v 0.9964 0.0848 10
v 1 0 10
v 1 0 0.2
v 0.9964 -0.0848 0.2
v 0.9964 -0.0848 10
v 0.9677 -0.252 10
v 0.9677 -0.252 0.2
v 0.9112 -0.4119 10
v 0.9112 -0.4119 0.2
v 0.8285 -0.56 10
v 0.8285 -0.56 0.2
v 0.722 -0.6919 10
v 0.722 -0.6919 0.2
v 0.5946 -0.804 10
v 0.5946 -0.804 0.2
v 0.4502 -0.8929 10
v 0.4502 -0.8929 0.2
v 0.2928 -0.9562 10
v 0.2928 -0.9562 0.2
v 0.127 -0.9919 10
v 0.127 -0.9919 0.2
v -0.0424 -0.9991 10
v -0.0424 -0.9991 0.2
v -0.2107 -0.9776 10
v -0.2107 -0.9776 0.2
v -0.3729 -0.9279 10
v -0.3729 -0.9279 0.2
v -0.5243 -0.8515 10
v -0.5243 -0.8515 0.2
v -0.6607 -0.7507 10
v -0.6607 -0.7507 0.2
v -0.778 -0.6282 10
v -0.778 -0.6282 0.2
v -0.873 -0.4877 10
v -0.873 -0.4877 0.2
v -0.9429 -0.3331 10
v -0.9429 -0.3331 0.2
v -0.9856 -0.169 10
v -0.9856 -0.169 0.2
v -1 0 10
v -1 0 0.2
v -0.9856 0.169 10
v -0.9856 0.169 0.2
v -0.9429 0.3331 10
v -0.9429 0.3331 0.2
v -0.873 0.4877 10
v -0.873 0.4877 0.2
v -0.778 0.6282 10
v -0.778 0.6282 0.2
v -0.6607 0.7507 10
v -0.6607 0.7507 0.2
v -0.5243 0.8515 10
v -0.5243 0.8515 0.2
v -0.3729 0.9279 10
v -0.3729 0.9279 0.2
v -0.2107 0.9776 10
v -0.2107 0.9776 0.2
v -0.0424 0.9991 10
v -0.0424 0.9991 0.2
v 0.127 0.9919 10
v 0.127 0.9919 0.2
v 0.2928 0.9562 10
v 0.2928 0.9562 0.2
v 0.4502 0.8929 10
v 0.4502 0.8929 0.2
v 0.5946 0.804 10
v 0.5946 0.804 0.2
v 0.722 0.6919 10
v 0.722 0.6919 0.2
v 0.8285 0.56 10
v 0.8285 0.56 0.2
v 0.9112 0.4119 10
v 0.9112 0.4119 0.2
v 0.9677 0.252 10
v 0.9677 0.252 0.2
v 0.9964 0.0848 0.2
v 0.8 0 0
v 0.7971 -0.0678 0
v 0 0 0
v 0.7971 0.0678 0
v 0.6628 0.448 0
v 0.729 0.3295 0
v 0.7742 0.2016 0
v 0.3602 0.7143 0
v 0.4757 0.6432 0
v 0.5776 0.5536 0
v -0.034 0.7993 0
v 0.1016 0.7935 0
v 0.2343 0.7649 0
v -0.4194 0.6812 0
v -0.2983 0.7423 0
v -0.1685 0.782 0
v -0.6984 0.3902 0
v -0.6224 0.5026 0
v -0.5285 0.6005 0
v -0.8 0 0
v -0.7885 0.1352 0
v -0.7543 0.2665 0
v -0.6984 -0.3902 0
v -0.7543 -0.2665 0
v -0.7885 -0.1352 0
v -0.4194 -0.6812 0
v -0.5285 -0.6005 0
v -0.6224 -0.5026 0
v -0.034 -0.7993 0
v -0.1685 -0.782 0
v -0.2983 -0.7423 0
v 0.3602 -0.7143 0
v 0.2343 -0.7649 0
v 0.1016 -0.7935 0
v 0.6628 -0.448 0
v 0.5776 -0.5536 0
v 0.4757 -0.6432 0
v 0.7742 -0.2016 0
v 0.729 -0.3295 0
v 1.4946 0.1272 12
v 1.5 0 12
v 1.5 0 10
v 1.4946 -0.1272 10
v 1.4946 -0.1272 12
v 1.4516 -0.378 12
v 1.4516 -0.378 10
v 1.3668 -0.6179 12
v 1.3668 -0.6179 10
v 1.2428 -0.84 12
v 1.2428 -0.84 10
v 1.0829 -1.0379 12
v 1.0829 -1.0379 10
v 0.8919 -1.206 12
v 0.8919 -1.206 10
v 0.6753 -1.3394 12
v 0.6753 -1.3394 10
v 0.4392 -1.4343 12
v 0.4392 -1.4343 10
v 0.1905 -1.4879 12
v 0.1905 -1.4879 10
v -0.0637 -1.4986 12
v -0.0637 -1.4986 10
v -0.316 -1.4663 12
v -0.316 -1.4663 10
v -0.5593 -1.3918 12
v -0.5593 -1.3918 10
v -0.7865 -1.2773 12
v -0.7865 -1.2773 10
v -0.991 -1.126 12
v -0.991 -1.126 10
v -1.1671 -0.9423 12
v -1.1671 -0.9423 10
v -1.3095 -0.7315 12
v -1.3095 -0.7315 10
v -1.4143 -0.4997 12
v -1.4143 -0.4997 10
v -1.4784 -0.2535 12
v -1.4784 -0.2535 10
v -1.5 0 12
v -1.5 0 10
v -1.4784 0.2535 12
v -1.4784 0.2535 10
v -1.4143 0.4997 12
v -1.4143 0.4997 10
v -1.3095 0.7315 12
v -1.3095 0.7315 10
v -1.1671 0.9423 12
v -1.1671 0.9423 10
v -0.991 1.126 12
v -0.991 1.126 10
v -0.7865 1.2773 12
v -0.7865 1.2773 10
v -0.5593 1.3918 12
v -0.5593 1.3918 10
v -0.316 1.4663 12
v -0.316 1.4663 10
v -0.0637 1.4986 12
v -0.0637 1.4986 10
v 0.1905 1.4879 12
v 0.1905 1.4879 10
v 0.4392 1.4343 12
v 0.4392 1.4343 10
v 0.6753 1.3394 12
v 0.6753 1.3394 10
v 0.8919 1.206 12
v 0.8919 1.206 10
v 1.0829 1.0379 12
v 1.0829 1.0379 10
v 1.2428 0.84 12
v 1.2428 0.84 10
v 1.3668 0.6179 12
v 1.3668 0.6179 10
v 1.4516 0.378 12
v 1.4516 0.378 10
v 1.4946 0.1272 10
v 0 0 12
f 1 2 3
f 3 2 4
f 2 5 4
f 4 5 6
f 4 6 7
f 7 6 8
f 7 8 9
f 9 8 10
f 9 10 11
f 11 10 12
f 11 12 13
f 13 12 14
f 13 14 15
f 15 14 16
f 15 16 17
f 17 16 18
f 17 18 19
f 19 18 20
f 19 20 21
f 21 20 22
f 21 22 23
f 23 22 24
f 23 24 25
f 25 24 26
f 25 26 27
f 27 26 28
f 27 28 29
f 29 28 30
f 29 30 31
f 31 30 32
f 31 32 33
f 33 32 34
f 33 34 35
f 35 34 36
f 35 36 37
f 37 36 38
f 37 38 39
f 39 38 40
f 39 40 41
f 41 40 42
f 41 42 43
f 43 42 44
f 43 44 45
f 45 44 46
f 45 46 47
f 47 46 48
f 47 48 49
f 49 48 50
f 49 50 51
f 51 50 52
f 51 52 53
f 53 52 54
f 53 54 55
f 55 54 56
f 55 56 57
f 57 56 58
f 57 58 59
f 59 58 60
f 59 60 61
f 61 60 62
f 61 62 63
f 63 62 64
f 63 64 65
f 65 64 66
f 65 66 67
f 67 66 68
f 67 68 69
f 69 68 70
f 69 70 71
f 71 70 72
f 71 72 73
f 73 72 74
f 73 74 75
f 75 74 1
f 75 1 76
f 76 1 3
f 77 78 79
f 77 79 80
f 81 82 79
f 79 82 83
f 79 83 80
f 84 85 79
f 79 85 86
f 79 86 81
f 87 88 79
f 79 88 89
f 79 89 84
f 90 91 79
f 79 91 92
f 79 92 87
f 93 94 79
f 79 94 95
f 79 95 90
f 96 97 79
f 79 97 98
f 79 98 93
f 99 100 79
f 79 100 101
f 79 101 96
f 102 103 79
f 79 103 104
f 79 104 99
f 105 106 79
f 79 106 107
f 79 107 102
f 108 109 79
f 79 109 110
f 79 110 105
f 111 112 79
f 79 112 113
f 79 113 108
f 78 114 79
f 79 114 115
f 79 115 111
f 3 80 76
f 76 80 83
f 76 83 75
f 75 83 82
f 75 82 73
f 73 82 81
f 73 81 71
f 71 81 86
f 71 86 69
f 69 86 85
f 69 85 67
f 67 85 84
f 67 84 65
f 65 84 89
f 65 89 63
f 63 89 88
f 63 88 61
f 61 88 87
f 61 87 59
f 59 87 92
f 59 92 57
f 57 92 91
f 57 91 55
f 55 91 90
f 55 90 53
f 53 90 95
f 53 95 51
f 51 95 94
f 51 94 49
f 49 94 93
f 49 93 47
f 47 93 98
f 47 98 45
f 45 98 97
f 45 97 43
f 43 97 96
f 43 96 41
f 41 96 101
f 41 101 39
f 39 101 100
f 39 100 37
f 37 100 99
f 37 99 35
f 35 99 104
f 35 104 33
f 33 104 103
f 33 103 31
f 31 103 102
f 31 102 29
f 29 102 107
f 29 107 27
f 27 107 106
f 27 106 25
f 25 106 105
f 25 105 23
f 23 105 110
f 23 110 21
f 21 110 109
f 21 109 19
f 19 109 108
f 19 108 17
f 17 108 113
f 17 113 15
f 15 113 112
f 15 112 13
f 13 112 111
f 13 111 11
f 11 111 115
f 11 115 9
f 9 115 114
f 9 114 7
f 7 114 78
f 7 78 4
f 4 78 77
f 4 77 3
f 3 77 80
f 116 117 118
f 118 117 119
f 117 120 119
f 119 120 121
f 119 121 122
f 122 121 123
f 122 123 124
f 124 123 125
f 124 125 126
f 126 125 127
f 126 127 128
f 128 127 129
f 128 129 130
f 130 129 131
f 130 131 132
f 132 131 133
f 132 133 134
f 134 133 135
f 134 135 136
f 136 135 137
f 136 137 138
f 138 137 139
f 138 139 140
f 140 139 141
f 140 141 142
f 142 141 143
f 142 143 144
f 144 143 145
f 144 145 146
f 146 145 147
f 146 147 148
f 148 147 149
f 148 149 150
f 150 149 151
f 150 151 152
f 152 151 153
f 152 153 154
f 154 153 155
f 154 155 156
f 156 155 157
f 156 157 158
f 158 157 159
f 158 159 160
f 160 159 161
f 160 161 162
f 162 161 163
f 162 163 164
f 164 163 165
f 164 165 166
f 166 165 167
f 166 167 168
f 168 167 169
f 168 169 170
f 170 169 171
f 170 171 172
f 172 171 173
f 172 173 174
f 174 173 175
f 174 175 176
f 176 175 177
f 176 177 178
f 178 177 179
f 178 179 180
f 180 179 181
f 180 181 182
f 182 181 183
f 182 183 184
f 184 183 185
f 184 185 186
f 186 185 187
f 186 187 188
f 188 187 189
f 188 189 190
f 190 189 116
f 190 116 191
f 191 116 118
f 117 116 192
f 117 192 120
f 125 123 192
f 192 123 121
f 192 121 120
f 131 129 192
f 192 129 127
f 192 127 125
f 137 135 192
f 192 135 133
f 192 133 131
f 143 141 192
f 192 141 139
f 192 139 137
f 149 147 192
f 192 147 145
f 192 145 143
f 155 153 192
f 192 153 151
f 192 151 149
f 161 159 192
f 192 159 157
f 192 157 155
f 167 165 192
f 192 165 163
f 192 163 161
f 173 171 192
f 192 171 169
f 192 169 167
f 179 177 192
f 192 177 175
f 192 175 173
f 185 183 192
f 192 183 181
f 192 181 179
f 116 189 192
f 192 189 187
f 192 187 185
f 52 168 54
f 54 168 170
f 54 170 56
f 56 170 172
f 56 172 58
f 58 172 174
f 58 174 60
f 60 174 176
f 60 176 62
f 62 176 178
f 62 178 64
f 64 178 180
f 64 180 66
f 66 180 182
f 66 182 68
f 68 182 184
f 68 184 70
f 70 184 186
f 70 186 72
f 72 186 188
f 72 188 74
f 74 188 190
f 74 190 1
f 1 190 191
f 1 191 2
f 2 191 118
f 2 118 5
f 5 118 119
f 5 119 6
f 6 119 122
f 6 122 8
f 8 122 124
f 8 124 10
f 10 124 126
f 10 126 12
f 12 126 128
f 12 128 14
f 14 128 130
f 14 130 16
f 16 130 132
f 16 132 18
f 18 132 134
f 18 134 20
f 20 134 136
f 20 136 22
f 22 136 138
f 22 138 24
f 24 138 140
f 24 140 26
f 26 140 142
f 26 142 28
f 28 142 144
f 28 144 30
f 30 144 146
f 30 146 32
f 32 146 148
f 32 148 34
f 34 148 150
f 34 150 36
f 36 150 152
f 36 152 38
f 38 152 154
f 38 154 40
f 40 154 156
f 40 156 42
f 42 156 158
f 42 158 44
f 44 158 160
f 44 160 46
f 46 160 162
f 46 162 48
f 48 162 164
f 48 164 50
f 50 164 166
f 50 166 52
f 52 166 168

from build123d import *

# Parameters (mm, degrees)
CROQUIS1_R              = 1
SALIENTE_EXTRUIR1_DEPTH = 10
CHAFL_N1_SIZE           = 0.2
CROQUIS2_R              = 1.5
SALIENTE_EXTRUIR2_DEPTH = 2


with BuildPart() as part:
    # Croquis1 → Saliente-Extruir1 (new body)
    with BuildSketch(Plane.XY):
        Circle(CROQUIS1_R)
    extrude(amount=SALIENTE_EXTRUIR1_DEPTH)

    # Chaflán1
    chafl_n1_edges = [part.edges().sort_by_distance(p)[0] for p in [
        (-1, 0, 0),
    ]]
    chamfer(chafl_n1_edges, length=CHAFL_N1_SIZE)

    # Croquis2 → Saliente-Extruir2 (add)
    with BuildSketch(Plane.XY.offset(10)):
        Circle(CROQUIS2_R)
    extrude(amount=SALIENTE_EXTRUIR2_DEPTH)


solid = part.part
